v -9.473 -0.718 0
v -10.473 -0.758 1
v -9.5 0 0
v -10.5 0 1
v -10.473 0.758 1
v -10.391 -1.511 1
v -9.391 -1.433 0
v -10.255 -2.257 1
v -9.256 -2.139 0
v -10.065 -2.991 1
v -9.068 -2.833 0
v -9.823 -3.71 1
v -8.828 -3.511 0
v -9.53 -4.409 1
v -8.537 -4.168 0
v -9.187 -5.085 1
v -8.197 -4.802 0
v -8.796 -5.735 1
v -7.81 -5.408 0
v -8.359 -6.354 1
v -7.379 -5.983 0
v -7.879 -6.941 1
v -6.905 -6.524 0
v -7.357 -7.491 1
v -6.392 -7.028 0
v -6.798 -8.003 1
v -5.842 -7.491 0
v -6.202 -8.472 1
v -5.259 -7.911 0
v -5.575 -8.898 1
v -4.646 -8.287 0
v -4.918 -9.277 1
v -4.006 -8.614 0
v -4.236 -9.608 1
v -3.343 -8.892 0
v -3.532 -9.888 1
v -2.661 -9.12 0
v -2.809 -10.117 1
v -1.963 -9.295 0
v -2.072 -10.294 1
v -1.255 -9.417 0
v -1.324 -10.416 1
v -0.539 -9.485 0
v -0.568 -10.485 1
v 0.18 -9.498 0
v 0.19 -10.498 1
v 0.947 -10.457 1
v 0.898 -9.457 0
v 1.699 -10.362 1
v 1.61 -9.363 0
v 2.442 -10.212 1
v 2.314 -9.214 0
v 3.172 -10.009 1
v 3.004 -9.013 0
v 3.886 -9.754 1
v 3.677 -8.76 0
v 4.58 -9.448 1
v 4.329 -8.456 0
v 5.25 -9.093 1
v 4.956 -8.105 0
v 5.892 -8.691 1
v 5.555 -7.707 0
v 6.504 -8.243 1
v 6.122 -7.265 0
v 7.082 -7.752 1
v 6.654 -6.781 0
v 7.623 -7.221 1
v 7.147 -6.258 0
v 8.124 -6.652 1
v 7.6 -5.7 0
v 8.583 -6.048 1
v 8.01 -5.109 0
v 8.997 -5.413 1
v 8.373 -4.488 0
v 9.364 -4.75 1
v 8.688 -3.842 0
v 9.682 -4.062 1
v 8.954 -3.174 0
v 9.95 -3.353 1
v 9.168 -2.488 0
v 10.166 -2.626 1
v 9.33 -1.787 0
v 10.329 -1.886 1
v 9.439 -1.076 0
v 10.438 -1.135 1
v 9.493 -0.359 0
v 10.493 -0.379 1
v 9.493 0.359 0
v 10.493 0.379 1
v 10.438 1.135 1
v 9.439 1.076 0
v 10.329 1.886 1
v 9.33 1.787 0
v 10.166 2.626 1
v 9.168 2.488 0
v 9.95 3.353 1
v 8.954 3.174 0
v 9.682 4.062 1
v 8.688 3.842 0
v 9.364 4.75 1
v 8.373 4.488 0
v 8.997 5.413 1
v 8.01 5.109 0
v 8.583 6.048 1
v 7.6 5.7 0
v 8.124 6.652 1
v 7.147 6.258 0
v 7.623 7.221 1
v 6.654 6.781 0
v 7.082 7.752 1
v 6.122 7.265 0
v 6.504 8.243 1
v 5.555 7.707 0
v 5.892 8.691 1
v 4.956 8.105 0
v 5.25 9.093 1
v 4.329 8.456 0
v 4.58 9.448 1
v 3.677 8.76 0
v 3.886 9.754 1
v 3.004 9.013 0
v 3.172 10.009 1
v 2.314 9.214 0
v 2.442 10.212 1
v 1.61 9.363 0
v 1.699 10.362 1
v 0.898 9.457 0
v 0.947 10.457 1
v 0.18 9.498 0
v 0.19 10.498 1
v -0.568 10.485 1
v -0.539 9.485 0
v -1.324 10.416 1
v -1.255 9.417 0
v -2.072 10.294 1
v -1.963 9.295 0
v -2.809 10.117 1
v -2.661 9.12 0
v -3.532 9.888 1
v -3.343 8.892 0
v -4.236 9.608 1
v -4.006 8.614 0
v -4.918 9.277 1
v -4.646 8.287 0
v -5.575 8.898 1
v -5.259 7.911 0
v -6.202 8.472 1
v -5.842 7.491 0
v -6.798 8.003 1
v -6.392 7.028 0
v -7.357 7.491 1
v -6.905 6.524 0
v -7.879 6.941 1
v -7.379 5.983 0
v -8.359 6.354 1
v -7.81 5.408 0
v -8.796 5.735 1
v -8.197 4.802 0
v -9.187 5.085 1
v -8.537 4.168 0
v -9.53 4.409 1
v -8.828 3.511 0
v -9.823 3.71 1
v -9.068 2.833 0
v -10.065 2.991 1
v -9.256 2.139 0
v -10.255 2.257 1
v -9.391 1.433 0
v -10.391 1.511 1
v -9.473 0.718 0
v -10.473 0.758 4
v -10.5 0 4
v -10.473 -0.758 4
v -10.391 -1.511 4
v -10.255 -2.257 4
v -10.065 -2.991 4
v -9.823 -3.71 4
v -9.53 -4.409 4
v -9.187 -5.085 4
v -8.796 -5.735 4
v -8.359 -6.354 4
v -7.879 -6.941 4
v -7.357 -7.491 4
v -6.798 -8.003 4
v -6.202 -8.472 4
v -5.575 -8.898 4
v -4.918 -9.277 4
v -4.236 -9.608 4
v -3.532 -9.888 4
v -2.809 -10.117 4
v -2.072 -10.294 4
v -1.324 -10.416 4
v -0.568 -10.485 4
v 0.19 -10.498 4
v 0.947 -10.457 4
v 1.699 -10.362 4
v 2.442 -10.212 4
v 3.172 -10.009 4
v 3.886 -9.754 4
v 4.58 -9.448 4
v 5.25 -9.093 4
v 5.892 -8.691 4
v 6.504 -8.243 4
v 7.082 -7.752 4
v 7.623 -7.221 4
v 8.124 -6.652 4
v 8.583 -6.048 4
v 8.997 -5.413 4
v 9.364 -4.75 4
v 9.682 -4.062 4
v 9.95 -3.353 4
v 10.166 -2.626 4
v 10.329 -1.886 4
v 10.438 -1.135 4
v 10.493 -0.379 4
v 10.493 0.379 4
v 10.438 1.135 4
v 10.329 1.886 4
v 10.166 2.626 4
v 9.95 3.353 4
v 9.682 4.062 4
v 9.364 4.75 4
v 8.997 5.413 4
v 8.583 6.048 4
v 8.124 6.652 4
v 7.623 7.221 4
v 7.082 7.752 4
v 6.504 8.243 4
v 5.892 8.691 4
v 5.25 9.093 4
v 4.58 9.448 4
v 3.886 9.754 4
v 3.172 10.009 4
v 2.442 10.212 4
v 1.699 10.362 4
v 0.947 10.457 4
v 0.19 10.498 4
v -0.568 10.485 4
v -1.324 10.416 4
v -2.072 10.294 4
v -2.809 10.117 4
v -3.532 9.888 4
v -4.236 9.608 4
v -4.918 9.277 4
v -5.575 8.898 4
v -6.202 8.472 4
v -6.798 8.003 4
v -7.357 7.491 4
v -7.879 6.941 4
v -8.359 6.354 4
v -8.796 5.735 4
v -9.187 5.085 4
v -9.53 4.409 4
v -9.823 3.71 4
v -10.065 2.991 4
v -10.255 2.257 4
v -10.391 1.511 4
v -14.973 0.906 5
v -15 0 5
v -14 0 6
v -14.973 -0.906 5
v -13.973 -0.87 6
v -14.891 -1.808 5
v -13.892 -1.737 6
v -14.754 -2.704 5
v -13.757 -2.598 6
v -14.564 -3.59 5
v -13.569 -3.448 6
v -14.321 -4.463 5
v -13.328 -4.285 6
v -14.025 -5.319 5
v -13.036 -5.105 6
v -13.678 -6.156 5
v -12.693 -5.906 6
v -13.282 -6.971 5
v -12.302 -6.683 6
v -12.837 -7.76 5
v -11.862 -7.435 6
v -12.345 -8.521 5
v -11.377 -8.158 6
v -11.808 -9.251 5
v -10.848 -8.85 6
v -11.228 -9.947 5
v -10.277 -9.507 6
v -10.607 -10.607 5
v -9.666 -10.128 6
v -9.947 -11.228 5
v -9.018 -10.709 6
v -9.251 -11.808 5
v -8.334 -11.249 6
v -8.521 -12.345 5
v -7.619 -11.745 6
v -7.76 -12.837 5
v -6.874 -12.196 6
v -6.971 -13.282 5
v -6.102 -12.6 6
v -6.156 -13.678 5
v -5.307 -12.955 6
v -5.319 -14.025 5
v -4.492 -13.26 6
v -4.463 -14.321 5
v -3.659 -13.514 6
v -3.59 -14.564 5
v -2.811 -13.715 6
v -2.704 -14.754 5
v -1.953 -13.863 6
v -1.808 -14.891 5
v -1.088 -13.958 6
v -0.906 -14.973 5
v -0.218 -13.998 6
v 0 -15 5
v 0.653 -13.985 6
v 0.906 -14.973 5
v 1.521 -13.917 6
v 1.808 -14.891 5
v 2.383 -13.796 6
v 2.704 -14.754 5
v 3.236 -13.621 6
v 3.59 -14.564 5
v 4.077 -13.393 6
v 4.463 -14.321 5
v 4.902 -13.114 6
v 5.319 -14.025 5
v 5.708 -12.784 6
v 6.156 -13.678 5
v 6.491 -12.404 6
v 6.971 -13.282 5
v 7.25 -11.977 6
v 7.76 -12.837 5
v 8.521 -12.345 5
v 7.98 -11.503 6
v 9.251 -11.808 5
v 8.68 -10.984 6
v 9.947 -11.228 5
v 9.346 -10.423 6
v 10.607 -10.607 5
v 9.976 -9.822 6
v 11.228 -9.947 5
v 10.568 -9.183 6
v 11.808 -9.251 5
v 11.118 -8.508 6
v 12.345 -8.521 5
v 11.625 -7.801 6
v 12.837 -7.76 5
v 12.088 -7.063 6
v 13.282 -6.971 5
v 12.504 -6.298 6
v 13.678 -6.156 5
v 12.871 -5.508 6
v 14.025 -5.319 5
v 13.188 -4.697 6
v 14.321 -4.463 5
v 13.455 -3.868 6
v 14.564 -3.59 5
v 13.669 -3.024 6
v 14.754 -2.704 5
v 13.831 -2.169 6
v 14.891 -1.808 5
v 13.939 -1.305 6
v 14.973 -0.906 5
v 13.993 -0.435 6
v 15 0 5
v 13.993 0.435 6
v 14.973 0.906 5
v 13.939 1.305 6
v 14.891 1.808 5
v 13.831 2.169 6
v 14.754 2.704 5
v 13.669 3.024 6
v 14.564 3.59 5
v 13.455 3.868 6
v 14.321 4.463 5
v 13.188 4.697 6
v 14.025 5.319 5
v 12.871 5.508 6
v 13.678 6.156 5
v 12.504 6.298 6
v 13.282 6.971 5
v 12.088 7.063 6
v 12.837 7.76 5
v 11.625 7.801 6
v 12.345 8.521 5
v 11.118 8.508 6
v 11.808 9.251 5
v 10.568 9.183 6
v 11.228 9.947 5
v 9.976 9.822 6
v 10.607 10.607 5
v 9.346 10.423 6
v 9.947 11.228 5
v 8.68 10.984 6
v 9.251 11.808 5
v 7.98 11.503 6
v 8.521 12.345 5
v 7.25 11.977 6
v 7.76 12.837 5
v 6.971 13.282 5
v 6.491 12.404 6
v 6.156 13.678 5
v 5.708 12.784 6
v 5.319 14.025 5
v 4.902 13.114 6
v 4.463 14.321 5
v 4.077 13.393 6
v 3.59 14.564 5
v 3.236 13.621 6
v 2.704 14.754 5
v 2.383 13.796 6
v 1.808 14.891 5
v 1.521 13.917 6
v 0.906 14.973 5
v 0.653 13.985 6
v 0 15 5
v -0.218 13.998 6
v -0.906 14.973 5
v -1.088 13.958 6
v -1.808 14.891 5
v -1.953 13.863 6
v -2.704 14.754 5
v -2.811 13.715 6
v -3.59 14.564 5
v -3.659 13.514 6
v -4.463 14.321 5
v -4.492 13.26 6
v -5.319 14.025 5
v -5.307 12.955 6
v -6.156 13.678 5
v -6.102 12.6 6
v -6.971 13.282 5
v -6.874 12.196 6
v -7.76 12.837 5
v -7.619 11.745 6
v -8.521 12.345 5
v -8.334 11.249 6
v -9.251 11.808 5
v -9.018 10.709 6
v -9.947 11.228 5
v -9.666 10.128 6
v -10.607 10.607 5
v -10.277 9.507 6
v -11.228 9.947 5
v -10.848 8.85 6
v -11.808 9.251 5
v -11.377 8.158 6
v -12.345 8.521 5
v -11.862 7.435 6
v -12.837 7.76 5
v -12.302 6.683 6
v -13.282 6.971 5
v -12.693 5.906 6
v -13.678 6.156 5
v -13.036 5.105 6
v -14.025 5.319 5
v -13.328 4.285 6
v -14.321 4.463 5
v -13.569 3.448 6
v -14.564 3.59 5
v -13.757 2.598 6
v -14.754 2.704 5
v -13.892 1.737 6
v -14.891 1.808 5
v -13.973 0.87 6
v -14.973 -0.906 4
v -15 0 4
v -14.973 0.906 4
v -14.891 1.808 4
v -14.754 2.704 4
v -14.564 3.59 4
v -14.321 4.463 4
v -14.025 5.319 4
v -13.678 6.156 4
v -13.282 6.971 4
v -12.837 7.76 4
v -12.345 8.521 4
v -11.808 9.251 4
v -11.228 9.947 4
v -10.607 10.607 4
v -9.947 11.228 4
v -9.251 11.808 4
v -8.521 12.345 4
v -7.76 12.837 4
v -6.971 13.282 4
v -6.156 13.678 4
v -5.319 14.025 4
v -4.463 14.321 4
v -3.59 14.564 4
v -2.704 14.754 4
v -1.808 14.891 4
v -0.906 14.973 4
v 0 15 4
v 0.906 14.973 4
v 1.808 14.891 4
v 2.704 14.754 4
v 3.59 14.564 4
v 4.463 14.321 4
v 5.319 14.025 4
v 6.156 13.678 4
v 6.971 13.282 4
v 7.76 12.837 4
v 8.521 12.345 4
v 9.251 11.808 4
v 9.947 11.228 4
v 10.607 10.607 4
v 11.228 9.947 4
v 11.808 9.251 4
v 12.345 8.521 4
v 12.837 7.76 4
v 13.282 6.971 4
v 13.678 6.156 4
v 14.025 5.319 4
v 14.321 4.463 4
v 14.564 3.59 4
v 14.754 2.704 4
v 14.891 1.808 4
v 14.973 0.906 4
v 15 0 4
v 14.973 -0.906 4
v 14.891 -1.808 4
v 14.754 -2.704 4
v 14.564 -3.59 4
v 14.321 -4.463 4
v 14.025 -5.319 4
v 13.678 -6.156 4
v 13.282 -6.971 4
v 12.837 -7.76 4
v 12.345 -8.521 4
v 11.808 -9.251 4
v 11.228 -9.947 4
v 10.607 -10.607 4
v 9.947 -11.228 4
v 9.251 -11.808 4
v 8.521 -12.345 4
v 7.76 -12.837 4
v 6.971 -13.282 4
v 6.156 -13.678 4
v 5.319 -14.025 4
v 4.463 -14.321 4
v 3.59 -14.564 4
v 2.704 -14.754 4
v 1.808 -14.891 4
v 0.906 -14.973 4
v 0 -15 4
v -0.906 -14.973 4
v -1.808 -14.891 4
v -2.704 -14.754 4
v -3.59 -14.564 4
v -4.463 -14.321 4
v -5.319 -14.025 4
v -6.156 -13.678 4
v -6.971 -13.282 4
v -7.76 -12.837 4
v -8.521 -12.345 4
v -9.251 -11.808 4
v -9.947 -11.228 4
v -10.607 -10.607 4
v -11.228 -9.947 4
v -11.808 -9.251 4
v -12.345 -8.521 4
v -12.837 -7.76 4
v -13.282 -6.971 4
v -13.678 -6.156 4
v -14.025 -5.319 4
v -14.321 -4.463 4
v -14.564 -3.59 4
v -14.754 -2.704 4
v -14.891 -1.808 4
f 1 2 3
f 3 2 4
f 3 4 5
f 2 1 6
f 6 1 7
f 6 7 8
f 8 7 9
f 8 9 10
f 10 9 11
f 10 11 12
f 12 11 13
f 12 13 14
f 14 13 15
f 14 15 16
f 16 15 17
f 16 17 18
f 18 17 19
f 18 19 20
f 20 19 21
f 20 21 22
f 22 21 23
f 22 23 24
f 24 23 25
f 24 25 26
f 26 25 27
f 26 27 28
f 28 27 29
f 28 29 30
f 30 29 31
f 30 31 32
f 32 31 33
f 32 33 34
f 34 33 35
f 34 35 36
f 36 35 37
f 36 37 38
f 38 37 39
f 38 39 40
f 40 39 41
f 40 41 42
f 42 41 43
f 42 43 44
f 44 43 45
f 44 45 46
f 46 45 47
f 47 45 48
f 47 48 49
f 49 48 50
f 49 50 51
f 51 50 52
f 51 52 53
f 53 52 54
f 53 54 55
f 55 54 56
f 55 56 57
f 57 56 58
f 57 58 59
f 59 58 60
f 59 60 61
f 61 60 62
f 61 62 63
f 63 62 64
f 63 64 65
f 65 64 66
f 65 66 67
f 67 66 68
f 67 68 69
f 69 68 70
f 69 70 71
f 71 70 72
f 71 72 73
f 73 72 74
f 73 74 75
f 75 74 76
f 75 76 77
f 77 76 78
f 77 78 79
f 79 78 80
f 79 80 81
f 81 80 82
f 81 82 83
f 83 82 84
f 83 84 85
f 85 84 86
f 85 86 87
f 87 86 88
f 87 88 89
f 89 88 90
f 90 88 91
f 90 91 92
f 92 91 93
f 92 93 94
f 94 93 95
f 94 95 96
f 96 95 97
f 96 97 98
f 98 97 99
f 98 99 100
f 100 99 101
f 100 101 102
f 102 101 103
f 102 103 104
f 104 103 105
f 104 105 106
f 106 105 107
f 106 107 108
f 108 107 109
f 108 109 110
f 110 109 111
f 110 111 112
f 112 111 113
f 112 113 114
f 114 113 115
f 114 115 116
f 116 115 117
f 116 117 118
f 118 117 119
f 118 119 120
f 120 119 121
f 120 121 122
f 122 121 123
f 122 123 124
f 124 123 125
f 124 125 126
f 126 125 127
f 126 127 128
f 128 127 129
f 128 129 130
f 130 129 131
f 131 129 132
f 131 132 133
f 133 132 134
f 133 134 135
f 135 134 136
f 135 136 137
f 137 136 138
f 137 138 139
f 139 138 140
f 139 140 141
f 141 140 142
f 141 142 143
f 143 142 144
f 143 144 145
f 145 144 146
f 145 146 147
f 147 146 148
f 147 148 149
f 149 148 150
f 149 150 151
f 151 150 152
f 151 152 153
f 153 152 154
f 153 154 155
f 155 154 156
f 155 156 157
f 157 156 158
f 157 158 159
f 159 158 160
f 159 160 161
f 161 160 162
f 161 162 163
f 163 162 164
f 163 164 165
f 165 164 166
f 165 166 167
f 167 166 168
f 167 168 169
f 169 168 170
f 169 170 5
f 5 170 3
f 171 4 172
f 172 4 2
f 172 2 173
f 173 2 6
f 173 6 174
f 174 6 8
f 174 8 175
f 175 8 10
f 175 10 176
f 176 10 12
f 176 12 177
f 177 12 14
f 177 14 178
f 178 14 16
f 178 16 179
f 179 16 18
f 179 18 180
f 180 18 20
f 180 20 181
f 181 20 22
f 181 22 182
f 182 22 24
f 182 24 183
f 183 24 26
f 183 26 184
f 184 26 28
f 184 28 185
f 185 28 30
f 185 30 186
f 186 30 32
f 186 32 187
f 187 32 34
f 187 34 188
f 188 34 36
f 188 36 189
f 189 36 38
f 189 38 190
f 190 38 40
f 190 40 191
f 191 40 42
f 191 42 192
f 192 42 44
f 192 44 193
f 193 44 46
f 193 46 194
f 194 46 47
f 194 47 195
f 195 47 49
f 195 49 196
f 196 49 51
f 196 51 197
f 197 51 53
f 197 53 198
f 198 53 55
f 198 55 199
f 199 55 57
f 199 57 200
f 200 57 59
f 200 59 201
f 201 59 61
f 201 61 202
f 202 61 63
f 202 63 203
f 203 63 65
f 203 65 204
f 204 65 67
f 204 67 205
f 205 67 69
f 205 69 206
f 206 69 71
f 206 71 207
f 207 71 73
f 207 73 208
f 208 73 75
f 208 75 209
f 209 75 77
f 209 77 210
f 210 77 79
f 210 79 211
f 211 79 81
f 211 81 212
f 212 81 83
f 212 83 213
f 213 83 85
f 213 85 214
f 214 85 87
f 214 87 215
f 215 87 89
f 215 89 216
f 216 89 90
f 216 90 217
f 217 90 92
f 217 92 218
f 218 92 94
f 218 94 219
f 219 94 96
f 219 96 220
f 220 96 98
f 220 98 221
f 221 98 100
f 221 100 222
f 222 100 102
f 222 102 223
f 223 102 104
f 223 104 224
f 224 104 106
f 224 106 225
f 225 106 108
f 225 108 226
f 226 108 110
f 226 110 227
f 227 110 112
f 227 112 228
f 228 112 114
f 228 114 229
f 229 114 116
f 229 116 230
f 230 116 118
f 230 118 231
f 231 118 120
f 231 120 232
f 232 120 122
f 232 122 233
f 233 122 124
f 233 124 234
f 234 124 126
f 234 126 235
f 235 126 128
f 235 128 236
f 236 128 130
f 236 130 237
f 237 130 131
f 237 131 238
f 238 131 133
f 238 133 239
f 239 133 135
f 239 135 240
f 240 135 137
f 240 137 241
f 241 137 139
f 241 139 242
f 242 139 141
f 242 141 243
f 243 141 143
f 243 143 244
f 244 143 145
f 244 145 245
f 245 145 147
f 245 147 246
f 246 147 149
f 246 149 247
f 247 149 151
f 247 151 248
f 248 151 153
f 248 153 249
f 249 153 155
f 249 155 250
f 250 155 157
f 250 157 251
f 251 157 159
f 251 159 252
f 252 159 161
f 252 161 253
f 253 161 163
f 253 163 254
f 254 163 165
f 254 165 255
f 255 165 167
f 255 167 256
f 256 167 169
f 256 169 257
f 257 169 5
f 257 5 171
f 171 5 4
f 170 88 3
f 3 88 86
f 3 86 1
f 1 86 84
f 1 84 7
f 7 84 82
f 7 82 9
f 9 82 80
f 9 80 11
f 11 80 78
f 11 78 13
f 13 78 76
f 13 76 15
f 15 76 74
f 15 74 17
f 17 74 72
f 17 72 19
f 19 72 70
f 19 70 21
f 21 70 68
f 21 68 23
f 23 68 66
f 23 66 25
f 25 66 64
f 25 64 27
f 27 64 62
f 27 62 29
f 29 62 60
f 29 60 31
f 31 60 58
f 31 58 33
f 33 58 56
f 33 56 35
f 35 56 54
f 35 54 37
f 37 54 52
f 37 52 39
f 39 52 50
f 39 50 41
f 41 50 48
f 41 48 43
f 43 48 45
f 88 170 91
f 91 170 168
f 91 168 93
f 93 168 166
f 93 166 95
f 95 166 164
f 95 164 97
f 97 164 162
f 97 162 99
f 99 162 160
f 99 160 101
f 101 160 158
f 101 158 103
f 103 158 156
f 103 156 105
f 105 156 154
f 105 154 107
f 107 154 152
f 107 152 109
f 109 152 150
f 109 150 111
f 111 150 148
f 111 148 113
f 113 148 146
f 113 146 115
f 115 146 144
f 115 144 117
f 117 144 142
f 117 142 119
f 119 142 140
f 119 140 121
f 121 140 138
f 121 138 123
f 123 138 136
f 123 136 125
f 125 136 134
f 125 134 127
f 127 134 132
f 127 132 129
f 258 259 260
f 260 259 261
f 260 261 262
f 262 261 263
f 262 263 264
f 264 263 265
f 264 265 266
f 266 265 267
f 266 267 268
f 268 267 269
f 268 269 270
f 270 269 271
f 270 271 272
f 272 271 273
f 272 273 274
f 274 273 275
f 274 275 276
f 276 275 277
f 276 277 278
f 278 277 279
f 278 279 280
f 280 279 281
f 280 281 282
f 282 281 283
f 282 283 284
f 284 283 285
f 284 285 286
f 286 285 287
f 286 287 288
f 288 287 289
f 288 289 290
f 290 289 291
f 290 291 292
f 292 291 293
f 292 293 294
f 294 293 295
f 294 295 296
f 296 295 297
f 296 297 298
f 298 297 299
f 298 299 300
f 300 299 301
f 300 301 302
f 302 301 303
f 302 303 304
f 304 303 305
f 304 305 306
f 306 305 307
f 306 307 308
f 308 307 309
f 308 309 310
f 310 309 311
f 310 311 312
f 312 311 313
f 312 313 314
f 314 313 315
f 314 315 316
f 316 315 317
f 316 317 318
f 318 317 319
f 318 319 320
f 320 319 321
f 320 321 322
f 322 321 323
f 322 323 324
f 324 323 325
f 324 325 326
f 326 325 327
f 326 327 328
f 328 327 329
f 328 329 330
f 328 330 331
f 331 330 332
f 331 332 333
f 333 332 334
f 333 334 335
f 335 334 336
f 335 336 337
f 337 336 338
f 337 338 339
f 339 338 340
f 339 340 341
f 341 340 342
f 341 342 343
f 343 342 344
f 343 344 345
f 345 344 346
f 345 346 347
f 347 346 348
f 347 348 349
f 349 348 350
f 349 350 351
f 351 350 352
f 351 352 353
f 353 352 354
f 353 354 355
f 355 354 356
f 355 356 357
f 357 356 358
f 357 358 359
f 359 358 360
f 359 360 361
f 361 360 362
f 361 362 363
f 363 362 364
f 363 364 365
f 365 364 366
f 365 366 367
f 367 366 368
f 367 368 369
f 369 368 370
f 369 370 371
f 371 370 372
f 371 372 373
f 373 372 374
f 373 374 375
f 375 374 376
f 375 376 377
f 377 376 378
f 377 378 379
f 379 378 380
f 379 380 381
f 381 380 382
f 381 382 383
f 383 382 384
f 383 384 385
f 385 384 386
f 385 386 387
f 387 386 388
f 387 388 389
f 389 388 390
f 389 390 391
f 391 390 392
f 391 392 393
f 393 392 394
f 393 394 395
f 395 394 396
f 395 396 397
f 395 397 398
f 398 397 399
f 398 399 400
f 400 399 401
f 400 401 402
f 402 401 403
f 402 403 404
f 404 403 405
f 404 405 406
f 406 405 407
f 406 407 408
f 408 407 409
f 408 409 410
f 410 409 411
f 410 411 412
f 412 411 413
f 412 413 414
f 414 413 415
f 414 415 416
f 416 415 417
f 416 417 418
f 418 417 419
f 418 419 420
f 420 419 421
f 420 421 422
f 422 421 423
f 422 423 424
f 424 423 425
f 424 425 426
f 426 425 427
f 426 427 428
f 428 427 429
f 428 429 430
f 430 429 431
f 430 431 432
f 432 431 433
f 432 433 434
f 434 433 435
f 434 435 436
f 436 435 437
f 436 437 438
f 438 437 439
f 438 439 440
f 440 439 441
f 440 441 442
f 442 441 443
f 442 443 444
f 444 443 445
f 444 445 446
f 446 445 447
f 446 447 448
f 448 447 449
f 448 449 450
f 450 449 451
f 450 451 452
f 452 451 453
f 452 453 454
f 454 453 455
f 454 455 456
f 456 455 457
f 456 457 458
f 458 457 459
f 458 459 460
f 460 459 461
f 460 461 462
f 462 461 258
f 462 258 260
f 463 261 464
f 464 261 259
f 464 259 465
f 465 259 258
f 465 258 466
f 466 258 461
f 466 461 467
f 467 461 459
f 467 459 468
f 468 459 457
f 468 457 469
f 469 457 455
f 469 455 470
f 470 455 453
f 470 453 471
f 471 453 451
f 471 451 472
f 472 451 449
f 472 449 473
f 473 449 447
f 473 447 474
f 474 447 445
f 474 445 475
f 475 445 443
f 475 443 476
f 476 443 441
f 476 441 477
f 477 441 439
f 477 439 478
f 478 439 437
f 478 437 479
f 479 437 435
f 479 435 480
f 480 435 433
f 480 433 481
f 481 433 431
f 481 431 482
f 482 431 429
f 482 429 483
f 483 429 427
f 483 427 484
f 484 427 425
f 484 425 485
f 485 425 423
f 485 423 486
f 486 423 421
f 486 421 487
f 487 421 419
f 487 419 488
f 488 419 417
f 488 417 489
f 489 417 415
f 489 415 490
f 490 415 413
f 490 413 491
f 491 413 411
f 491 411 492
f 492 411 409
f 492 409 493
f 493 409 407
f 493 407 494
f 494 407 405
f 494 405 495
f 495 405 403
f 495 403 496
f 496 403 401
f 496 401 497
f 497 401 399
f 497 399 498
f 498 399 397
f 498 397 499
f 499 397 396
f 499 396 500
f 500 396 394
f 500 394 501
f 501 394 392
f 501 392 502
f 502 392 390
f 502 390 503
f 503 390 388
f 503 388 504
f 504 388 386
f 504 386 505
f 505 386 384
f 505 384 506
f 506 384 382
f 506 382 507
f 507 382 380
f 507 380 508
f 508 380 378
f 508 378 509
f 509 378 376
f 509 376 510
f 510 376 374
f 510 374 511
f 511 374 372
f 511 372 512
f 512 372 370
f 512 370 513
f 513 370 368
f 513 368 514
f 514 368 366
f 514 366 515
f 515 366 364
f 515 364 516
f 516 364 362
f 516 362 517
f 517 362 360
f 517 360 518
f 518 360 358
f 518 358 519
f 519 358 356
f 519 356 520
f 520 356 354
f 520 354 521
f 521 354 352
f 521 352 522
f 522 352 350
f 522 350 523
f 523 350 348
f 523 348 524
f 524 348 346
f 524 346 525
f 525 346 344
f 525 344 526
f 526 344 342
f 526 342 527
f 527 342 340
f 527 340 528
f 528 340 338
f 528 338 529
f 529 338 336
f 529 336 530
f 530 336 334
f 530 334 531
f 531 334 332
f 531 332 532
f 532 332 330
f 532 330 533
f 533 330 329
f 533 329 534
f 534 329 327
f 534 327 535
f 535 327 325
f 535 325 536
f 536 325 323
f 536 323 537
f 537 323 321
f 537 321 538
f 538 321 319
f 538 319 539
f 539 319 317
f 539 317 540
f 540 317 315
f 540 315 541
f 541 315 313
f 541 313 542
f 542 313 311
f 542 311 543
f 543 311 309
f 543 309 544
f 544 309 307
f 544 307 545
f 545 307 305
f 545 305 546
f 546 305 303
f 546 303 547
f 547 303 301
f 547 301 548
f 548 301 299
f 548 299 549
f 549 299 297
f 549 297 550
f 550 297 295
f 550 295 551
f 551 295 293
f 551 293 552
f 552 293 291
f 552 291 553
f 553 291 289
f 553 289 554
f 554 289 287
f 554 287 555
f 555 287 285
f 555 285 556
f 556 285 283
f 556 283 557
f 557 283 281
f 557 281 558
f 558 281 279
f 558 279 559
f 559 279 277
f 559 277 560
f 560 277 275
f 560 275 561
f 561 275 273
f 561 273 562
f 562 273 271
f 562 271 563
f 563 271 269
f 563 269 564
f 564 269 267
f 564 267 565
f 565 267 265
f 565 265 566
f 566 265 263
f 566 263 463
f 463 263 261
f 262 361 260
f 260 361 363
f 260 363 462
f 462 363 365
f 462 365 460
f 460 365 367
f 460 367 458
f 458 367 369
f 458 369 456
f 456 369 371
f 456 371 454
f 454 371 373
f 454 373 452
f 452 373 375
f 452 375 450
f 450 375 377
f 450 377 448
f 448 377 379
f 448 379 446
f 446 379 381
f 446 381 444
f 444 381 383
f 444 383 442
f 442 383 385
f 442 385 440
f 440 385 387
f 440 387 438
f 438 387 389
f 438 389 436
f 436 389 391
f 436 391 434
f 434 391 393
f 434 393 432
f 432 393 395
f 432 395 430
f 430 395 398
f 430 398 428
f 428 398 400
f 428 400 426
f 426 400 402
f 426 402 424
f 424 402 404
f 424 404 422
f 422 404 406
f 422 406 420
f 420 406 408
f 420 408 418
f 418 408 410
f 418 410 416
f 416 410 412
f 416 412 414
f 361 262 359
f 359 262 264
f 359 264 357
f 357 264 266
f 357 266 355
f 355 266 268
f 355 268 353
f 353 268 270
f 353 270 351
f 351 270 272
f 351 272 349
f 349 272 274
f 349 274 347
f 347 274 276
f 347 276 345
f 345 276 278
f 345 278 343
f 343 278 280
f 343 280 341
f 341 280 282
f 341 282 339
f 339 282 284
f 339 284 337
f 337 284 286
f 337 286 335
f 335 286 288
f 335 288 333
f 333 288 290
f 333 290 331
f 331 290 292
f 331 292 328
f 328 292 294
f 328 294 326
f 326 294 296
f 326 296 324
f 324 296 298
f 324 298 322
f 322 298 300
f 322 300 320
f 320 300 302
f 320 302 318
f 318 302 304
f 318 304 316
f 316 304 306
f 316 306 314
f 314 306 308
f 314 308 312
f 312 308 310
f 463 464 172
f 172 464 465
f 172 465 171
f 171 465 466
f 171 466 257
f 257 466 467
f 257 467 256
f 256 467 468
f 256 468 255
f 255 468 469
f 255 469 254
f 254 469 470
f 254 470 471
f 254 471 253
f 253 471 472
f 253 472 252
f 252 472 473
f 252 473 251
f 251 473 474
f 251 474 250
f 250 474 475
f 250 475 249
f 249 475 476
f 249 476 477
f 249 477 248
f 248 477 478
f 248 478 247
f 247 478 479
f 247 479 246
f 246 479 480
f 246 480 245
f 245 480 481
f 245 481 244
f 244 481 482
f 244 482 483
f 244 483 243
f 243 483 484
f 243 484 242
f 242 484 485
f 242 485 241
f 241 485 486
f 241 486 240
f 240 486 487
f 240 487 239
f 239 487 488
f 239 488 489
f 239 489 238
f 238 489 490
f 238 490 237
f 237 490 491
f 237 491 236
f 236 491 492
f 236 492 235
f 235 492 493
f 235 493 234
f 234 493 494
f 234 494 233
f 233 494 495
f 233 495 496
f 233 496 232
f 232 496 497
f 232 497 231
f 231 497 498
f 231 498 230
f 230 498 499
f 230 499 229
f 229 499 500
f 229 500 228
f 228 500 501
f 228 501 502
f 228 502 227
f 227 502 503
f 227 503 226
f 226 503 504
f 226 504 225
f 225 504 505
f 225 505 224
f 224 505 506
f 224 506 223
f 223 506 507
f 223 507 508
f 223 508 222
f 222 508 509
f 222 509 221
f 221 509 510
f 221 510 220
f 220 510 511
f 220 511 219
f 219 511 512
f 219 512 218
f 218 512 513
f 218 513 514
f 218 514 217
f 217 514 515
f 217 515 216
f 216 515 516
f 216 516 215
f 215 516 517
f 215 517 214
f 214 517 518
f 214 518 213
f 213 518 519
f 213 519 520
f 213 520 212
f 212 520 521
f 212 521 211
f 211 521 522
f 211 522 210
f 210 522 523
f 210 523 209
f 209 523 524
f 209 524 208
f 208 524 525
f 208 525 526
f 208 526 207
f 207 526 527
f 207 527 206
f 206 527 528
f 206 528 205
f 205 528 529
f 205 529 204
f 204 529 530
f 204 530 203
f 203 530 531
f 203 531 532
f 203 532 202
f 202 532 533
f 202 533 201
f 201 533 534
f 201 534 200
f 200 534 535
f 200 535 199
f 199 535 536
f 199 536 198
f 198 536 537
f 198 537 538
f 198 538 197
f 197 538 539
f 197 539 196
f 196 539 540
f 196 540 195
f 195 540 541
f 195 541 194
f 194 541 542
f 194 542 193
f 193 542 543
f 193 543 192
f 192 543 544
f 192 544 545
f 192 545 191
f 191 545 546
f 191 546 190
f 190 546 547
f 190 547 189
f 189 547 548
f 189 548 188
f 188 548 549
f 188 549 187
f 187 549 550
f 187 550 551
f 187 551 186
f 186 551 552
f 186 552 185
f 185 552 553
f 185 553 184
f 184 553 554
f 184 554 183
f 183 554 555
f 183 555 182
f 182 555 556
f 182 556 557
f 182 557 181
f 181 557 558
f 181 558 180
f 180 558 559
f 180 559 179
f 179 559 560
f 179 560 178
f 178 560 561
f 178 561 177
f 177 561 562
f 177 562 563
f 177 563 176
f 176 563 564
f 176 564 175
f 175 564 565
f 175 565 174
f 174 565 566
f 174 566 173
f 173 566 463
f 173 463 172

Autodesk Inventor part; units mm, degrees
ref_plane "YZ Plane" through (0, 0, 0) normal (1, 0, 0) x (0, 1, 0)
ref_plane "XZ Plane" through (0, 0, 0) normal (0, 1, 0) x (-1, 0, 0)
ref_plane "XY Plane" through (0, 0, 0) normal (0, 0, 1) x (1, 0, 0)
sketch "Sketch1" plane through (0, 0, 0) normal (0, 0, 1) x (1, 0, 0)
  circle A0 centre (0, 0) radius 10.5
  dimension "d0" = 21
extrude "Extrusion1" add sketch "Sketch1" along normal blind 4
sketch "Sketch2" plane through (0, 0, 4) normal (0, 0, 1) x (1, 0, 0)
  circle A0 centre (0, 0) radius 15
  dimension "d3" = 30
extrude "Extrusion2" add sketch "Sketch2" along normal blind 2
chamfer "Chamfer1" distance 1 angle 45 1 edges at (-15, 0, 6)
chamfer "Chamfer2" distance 1 angle 45 1 edges at (-10.5, 0, 0)
properties part number "Plug21mm_3DPrint"
